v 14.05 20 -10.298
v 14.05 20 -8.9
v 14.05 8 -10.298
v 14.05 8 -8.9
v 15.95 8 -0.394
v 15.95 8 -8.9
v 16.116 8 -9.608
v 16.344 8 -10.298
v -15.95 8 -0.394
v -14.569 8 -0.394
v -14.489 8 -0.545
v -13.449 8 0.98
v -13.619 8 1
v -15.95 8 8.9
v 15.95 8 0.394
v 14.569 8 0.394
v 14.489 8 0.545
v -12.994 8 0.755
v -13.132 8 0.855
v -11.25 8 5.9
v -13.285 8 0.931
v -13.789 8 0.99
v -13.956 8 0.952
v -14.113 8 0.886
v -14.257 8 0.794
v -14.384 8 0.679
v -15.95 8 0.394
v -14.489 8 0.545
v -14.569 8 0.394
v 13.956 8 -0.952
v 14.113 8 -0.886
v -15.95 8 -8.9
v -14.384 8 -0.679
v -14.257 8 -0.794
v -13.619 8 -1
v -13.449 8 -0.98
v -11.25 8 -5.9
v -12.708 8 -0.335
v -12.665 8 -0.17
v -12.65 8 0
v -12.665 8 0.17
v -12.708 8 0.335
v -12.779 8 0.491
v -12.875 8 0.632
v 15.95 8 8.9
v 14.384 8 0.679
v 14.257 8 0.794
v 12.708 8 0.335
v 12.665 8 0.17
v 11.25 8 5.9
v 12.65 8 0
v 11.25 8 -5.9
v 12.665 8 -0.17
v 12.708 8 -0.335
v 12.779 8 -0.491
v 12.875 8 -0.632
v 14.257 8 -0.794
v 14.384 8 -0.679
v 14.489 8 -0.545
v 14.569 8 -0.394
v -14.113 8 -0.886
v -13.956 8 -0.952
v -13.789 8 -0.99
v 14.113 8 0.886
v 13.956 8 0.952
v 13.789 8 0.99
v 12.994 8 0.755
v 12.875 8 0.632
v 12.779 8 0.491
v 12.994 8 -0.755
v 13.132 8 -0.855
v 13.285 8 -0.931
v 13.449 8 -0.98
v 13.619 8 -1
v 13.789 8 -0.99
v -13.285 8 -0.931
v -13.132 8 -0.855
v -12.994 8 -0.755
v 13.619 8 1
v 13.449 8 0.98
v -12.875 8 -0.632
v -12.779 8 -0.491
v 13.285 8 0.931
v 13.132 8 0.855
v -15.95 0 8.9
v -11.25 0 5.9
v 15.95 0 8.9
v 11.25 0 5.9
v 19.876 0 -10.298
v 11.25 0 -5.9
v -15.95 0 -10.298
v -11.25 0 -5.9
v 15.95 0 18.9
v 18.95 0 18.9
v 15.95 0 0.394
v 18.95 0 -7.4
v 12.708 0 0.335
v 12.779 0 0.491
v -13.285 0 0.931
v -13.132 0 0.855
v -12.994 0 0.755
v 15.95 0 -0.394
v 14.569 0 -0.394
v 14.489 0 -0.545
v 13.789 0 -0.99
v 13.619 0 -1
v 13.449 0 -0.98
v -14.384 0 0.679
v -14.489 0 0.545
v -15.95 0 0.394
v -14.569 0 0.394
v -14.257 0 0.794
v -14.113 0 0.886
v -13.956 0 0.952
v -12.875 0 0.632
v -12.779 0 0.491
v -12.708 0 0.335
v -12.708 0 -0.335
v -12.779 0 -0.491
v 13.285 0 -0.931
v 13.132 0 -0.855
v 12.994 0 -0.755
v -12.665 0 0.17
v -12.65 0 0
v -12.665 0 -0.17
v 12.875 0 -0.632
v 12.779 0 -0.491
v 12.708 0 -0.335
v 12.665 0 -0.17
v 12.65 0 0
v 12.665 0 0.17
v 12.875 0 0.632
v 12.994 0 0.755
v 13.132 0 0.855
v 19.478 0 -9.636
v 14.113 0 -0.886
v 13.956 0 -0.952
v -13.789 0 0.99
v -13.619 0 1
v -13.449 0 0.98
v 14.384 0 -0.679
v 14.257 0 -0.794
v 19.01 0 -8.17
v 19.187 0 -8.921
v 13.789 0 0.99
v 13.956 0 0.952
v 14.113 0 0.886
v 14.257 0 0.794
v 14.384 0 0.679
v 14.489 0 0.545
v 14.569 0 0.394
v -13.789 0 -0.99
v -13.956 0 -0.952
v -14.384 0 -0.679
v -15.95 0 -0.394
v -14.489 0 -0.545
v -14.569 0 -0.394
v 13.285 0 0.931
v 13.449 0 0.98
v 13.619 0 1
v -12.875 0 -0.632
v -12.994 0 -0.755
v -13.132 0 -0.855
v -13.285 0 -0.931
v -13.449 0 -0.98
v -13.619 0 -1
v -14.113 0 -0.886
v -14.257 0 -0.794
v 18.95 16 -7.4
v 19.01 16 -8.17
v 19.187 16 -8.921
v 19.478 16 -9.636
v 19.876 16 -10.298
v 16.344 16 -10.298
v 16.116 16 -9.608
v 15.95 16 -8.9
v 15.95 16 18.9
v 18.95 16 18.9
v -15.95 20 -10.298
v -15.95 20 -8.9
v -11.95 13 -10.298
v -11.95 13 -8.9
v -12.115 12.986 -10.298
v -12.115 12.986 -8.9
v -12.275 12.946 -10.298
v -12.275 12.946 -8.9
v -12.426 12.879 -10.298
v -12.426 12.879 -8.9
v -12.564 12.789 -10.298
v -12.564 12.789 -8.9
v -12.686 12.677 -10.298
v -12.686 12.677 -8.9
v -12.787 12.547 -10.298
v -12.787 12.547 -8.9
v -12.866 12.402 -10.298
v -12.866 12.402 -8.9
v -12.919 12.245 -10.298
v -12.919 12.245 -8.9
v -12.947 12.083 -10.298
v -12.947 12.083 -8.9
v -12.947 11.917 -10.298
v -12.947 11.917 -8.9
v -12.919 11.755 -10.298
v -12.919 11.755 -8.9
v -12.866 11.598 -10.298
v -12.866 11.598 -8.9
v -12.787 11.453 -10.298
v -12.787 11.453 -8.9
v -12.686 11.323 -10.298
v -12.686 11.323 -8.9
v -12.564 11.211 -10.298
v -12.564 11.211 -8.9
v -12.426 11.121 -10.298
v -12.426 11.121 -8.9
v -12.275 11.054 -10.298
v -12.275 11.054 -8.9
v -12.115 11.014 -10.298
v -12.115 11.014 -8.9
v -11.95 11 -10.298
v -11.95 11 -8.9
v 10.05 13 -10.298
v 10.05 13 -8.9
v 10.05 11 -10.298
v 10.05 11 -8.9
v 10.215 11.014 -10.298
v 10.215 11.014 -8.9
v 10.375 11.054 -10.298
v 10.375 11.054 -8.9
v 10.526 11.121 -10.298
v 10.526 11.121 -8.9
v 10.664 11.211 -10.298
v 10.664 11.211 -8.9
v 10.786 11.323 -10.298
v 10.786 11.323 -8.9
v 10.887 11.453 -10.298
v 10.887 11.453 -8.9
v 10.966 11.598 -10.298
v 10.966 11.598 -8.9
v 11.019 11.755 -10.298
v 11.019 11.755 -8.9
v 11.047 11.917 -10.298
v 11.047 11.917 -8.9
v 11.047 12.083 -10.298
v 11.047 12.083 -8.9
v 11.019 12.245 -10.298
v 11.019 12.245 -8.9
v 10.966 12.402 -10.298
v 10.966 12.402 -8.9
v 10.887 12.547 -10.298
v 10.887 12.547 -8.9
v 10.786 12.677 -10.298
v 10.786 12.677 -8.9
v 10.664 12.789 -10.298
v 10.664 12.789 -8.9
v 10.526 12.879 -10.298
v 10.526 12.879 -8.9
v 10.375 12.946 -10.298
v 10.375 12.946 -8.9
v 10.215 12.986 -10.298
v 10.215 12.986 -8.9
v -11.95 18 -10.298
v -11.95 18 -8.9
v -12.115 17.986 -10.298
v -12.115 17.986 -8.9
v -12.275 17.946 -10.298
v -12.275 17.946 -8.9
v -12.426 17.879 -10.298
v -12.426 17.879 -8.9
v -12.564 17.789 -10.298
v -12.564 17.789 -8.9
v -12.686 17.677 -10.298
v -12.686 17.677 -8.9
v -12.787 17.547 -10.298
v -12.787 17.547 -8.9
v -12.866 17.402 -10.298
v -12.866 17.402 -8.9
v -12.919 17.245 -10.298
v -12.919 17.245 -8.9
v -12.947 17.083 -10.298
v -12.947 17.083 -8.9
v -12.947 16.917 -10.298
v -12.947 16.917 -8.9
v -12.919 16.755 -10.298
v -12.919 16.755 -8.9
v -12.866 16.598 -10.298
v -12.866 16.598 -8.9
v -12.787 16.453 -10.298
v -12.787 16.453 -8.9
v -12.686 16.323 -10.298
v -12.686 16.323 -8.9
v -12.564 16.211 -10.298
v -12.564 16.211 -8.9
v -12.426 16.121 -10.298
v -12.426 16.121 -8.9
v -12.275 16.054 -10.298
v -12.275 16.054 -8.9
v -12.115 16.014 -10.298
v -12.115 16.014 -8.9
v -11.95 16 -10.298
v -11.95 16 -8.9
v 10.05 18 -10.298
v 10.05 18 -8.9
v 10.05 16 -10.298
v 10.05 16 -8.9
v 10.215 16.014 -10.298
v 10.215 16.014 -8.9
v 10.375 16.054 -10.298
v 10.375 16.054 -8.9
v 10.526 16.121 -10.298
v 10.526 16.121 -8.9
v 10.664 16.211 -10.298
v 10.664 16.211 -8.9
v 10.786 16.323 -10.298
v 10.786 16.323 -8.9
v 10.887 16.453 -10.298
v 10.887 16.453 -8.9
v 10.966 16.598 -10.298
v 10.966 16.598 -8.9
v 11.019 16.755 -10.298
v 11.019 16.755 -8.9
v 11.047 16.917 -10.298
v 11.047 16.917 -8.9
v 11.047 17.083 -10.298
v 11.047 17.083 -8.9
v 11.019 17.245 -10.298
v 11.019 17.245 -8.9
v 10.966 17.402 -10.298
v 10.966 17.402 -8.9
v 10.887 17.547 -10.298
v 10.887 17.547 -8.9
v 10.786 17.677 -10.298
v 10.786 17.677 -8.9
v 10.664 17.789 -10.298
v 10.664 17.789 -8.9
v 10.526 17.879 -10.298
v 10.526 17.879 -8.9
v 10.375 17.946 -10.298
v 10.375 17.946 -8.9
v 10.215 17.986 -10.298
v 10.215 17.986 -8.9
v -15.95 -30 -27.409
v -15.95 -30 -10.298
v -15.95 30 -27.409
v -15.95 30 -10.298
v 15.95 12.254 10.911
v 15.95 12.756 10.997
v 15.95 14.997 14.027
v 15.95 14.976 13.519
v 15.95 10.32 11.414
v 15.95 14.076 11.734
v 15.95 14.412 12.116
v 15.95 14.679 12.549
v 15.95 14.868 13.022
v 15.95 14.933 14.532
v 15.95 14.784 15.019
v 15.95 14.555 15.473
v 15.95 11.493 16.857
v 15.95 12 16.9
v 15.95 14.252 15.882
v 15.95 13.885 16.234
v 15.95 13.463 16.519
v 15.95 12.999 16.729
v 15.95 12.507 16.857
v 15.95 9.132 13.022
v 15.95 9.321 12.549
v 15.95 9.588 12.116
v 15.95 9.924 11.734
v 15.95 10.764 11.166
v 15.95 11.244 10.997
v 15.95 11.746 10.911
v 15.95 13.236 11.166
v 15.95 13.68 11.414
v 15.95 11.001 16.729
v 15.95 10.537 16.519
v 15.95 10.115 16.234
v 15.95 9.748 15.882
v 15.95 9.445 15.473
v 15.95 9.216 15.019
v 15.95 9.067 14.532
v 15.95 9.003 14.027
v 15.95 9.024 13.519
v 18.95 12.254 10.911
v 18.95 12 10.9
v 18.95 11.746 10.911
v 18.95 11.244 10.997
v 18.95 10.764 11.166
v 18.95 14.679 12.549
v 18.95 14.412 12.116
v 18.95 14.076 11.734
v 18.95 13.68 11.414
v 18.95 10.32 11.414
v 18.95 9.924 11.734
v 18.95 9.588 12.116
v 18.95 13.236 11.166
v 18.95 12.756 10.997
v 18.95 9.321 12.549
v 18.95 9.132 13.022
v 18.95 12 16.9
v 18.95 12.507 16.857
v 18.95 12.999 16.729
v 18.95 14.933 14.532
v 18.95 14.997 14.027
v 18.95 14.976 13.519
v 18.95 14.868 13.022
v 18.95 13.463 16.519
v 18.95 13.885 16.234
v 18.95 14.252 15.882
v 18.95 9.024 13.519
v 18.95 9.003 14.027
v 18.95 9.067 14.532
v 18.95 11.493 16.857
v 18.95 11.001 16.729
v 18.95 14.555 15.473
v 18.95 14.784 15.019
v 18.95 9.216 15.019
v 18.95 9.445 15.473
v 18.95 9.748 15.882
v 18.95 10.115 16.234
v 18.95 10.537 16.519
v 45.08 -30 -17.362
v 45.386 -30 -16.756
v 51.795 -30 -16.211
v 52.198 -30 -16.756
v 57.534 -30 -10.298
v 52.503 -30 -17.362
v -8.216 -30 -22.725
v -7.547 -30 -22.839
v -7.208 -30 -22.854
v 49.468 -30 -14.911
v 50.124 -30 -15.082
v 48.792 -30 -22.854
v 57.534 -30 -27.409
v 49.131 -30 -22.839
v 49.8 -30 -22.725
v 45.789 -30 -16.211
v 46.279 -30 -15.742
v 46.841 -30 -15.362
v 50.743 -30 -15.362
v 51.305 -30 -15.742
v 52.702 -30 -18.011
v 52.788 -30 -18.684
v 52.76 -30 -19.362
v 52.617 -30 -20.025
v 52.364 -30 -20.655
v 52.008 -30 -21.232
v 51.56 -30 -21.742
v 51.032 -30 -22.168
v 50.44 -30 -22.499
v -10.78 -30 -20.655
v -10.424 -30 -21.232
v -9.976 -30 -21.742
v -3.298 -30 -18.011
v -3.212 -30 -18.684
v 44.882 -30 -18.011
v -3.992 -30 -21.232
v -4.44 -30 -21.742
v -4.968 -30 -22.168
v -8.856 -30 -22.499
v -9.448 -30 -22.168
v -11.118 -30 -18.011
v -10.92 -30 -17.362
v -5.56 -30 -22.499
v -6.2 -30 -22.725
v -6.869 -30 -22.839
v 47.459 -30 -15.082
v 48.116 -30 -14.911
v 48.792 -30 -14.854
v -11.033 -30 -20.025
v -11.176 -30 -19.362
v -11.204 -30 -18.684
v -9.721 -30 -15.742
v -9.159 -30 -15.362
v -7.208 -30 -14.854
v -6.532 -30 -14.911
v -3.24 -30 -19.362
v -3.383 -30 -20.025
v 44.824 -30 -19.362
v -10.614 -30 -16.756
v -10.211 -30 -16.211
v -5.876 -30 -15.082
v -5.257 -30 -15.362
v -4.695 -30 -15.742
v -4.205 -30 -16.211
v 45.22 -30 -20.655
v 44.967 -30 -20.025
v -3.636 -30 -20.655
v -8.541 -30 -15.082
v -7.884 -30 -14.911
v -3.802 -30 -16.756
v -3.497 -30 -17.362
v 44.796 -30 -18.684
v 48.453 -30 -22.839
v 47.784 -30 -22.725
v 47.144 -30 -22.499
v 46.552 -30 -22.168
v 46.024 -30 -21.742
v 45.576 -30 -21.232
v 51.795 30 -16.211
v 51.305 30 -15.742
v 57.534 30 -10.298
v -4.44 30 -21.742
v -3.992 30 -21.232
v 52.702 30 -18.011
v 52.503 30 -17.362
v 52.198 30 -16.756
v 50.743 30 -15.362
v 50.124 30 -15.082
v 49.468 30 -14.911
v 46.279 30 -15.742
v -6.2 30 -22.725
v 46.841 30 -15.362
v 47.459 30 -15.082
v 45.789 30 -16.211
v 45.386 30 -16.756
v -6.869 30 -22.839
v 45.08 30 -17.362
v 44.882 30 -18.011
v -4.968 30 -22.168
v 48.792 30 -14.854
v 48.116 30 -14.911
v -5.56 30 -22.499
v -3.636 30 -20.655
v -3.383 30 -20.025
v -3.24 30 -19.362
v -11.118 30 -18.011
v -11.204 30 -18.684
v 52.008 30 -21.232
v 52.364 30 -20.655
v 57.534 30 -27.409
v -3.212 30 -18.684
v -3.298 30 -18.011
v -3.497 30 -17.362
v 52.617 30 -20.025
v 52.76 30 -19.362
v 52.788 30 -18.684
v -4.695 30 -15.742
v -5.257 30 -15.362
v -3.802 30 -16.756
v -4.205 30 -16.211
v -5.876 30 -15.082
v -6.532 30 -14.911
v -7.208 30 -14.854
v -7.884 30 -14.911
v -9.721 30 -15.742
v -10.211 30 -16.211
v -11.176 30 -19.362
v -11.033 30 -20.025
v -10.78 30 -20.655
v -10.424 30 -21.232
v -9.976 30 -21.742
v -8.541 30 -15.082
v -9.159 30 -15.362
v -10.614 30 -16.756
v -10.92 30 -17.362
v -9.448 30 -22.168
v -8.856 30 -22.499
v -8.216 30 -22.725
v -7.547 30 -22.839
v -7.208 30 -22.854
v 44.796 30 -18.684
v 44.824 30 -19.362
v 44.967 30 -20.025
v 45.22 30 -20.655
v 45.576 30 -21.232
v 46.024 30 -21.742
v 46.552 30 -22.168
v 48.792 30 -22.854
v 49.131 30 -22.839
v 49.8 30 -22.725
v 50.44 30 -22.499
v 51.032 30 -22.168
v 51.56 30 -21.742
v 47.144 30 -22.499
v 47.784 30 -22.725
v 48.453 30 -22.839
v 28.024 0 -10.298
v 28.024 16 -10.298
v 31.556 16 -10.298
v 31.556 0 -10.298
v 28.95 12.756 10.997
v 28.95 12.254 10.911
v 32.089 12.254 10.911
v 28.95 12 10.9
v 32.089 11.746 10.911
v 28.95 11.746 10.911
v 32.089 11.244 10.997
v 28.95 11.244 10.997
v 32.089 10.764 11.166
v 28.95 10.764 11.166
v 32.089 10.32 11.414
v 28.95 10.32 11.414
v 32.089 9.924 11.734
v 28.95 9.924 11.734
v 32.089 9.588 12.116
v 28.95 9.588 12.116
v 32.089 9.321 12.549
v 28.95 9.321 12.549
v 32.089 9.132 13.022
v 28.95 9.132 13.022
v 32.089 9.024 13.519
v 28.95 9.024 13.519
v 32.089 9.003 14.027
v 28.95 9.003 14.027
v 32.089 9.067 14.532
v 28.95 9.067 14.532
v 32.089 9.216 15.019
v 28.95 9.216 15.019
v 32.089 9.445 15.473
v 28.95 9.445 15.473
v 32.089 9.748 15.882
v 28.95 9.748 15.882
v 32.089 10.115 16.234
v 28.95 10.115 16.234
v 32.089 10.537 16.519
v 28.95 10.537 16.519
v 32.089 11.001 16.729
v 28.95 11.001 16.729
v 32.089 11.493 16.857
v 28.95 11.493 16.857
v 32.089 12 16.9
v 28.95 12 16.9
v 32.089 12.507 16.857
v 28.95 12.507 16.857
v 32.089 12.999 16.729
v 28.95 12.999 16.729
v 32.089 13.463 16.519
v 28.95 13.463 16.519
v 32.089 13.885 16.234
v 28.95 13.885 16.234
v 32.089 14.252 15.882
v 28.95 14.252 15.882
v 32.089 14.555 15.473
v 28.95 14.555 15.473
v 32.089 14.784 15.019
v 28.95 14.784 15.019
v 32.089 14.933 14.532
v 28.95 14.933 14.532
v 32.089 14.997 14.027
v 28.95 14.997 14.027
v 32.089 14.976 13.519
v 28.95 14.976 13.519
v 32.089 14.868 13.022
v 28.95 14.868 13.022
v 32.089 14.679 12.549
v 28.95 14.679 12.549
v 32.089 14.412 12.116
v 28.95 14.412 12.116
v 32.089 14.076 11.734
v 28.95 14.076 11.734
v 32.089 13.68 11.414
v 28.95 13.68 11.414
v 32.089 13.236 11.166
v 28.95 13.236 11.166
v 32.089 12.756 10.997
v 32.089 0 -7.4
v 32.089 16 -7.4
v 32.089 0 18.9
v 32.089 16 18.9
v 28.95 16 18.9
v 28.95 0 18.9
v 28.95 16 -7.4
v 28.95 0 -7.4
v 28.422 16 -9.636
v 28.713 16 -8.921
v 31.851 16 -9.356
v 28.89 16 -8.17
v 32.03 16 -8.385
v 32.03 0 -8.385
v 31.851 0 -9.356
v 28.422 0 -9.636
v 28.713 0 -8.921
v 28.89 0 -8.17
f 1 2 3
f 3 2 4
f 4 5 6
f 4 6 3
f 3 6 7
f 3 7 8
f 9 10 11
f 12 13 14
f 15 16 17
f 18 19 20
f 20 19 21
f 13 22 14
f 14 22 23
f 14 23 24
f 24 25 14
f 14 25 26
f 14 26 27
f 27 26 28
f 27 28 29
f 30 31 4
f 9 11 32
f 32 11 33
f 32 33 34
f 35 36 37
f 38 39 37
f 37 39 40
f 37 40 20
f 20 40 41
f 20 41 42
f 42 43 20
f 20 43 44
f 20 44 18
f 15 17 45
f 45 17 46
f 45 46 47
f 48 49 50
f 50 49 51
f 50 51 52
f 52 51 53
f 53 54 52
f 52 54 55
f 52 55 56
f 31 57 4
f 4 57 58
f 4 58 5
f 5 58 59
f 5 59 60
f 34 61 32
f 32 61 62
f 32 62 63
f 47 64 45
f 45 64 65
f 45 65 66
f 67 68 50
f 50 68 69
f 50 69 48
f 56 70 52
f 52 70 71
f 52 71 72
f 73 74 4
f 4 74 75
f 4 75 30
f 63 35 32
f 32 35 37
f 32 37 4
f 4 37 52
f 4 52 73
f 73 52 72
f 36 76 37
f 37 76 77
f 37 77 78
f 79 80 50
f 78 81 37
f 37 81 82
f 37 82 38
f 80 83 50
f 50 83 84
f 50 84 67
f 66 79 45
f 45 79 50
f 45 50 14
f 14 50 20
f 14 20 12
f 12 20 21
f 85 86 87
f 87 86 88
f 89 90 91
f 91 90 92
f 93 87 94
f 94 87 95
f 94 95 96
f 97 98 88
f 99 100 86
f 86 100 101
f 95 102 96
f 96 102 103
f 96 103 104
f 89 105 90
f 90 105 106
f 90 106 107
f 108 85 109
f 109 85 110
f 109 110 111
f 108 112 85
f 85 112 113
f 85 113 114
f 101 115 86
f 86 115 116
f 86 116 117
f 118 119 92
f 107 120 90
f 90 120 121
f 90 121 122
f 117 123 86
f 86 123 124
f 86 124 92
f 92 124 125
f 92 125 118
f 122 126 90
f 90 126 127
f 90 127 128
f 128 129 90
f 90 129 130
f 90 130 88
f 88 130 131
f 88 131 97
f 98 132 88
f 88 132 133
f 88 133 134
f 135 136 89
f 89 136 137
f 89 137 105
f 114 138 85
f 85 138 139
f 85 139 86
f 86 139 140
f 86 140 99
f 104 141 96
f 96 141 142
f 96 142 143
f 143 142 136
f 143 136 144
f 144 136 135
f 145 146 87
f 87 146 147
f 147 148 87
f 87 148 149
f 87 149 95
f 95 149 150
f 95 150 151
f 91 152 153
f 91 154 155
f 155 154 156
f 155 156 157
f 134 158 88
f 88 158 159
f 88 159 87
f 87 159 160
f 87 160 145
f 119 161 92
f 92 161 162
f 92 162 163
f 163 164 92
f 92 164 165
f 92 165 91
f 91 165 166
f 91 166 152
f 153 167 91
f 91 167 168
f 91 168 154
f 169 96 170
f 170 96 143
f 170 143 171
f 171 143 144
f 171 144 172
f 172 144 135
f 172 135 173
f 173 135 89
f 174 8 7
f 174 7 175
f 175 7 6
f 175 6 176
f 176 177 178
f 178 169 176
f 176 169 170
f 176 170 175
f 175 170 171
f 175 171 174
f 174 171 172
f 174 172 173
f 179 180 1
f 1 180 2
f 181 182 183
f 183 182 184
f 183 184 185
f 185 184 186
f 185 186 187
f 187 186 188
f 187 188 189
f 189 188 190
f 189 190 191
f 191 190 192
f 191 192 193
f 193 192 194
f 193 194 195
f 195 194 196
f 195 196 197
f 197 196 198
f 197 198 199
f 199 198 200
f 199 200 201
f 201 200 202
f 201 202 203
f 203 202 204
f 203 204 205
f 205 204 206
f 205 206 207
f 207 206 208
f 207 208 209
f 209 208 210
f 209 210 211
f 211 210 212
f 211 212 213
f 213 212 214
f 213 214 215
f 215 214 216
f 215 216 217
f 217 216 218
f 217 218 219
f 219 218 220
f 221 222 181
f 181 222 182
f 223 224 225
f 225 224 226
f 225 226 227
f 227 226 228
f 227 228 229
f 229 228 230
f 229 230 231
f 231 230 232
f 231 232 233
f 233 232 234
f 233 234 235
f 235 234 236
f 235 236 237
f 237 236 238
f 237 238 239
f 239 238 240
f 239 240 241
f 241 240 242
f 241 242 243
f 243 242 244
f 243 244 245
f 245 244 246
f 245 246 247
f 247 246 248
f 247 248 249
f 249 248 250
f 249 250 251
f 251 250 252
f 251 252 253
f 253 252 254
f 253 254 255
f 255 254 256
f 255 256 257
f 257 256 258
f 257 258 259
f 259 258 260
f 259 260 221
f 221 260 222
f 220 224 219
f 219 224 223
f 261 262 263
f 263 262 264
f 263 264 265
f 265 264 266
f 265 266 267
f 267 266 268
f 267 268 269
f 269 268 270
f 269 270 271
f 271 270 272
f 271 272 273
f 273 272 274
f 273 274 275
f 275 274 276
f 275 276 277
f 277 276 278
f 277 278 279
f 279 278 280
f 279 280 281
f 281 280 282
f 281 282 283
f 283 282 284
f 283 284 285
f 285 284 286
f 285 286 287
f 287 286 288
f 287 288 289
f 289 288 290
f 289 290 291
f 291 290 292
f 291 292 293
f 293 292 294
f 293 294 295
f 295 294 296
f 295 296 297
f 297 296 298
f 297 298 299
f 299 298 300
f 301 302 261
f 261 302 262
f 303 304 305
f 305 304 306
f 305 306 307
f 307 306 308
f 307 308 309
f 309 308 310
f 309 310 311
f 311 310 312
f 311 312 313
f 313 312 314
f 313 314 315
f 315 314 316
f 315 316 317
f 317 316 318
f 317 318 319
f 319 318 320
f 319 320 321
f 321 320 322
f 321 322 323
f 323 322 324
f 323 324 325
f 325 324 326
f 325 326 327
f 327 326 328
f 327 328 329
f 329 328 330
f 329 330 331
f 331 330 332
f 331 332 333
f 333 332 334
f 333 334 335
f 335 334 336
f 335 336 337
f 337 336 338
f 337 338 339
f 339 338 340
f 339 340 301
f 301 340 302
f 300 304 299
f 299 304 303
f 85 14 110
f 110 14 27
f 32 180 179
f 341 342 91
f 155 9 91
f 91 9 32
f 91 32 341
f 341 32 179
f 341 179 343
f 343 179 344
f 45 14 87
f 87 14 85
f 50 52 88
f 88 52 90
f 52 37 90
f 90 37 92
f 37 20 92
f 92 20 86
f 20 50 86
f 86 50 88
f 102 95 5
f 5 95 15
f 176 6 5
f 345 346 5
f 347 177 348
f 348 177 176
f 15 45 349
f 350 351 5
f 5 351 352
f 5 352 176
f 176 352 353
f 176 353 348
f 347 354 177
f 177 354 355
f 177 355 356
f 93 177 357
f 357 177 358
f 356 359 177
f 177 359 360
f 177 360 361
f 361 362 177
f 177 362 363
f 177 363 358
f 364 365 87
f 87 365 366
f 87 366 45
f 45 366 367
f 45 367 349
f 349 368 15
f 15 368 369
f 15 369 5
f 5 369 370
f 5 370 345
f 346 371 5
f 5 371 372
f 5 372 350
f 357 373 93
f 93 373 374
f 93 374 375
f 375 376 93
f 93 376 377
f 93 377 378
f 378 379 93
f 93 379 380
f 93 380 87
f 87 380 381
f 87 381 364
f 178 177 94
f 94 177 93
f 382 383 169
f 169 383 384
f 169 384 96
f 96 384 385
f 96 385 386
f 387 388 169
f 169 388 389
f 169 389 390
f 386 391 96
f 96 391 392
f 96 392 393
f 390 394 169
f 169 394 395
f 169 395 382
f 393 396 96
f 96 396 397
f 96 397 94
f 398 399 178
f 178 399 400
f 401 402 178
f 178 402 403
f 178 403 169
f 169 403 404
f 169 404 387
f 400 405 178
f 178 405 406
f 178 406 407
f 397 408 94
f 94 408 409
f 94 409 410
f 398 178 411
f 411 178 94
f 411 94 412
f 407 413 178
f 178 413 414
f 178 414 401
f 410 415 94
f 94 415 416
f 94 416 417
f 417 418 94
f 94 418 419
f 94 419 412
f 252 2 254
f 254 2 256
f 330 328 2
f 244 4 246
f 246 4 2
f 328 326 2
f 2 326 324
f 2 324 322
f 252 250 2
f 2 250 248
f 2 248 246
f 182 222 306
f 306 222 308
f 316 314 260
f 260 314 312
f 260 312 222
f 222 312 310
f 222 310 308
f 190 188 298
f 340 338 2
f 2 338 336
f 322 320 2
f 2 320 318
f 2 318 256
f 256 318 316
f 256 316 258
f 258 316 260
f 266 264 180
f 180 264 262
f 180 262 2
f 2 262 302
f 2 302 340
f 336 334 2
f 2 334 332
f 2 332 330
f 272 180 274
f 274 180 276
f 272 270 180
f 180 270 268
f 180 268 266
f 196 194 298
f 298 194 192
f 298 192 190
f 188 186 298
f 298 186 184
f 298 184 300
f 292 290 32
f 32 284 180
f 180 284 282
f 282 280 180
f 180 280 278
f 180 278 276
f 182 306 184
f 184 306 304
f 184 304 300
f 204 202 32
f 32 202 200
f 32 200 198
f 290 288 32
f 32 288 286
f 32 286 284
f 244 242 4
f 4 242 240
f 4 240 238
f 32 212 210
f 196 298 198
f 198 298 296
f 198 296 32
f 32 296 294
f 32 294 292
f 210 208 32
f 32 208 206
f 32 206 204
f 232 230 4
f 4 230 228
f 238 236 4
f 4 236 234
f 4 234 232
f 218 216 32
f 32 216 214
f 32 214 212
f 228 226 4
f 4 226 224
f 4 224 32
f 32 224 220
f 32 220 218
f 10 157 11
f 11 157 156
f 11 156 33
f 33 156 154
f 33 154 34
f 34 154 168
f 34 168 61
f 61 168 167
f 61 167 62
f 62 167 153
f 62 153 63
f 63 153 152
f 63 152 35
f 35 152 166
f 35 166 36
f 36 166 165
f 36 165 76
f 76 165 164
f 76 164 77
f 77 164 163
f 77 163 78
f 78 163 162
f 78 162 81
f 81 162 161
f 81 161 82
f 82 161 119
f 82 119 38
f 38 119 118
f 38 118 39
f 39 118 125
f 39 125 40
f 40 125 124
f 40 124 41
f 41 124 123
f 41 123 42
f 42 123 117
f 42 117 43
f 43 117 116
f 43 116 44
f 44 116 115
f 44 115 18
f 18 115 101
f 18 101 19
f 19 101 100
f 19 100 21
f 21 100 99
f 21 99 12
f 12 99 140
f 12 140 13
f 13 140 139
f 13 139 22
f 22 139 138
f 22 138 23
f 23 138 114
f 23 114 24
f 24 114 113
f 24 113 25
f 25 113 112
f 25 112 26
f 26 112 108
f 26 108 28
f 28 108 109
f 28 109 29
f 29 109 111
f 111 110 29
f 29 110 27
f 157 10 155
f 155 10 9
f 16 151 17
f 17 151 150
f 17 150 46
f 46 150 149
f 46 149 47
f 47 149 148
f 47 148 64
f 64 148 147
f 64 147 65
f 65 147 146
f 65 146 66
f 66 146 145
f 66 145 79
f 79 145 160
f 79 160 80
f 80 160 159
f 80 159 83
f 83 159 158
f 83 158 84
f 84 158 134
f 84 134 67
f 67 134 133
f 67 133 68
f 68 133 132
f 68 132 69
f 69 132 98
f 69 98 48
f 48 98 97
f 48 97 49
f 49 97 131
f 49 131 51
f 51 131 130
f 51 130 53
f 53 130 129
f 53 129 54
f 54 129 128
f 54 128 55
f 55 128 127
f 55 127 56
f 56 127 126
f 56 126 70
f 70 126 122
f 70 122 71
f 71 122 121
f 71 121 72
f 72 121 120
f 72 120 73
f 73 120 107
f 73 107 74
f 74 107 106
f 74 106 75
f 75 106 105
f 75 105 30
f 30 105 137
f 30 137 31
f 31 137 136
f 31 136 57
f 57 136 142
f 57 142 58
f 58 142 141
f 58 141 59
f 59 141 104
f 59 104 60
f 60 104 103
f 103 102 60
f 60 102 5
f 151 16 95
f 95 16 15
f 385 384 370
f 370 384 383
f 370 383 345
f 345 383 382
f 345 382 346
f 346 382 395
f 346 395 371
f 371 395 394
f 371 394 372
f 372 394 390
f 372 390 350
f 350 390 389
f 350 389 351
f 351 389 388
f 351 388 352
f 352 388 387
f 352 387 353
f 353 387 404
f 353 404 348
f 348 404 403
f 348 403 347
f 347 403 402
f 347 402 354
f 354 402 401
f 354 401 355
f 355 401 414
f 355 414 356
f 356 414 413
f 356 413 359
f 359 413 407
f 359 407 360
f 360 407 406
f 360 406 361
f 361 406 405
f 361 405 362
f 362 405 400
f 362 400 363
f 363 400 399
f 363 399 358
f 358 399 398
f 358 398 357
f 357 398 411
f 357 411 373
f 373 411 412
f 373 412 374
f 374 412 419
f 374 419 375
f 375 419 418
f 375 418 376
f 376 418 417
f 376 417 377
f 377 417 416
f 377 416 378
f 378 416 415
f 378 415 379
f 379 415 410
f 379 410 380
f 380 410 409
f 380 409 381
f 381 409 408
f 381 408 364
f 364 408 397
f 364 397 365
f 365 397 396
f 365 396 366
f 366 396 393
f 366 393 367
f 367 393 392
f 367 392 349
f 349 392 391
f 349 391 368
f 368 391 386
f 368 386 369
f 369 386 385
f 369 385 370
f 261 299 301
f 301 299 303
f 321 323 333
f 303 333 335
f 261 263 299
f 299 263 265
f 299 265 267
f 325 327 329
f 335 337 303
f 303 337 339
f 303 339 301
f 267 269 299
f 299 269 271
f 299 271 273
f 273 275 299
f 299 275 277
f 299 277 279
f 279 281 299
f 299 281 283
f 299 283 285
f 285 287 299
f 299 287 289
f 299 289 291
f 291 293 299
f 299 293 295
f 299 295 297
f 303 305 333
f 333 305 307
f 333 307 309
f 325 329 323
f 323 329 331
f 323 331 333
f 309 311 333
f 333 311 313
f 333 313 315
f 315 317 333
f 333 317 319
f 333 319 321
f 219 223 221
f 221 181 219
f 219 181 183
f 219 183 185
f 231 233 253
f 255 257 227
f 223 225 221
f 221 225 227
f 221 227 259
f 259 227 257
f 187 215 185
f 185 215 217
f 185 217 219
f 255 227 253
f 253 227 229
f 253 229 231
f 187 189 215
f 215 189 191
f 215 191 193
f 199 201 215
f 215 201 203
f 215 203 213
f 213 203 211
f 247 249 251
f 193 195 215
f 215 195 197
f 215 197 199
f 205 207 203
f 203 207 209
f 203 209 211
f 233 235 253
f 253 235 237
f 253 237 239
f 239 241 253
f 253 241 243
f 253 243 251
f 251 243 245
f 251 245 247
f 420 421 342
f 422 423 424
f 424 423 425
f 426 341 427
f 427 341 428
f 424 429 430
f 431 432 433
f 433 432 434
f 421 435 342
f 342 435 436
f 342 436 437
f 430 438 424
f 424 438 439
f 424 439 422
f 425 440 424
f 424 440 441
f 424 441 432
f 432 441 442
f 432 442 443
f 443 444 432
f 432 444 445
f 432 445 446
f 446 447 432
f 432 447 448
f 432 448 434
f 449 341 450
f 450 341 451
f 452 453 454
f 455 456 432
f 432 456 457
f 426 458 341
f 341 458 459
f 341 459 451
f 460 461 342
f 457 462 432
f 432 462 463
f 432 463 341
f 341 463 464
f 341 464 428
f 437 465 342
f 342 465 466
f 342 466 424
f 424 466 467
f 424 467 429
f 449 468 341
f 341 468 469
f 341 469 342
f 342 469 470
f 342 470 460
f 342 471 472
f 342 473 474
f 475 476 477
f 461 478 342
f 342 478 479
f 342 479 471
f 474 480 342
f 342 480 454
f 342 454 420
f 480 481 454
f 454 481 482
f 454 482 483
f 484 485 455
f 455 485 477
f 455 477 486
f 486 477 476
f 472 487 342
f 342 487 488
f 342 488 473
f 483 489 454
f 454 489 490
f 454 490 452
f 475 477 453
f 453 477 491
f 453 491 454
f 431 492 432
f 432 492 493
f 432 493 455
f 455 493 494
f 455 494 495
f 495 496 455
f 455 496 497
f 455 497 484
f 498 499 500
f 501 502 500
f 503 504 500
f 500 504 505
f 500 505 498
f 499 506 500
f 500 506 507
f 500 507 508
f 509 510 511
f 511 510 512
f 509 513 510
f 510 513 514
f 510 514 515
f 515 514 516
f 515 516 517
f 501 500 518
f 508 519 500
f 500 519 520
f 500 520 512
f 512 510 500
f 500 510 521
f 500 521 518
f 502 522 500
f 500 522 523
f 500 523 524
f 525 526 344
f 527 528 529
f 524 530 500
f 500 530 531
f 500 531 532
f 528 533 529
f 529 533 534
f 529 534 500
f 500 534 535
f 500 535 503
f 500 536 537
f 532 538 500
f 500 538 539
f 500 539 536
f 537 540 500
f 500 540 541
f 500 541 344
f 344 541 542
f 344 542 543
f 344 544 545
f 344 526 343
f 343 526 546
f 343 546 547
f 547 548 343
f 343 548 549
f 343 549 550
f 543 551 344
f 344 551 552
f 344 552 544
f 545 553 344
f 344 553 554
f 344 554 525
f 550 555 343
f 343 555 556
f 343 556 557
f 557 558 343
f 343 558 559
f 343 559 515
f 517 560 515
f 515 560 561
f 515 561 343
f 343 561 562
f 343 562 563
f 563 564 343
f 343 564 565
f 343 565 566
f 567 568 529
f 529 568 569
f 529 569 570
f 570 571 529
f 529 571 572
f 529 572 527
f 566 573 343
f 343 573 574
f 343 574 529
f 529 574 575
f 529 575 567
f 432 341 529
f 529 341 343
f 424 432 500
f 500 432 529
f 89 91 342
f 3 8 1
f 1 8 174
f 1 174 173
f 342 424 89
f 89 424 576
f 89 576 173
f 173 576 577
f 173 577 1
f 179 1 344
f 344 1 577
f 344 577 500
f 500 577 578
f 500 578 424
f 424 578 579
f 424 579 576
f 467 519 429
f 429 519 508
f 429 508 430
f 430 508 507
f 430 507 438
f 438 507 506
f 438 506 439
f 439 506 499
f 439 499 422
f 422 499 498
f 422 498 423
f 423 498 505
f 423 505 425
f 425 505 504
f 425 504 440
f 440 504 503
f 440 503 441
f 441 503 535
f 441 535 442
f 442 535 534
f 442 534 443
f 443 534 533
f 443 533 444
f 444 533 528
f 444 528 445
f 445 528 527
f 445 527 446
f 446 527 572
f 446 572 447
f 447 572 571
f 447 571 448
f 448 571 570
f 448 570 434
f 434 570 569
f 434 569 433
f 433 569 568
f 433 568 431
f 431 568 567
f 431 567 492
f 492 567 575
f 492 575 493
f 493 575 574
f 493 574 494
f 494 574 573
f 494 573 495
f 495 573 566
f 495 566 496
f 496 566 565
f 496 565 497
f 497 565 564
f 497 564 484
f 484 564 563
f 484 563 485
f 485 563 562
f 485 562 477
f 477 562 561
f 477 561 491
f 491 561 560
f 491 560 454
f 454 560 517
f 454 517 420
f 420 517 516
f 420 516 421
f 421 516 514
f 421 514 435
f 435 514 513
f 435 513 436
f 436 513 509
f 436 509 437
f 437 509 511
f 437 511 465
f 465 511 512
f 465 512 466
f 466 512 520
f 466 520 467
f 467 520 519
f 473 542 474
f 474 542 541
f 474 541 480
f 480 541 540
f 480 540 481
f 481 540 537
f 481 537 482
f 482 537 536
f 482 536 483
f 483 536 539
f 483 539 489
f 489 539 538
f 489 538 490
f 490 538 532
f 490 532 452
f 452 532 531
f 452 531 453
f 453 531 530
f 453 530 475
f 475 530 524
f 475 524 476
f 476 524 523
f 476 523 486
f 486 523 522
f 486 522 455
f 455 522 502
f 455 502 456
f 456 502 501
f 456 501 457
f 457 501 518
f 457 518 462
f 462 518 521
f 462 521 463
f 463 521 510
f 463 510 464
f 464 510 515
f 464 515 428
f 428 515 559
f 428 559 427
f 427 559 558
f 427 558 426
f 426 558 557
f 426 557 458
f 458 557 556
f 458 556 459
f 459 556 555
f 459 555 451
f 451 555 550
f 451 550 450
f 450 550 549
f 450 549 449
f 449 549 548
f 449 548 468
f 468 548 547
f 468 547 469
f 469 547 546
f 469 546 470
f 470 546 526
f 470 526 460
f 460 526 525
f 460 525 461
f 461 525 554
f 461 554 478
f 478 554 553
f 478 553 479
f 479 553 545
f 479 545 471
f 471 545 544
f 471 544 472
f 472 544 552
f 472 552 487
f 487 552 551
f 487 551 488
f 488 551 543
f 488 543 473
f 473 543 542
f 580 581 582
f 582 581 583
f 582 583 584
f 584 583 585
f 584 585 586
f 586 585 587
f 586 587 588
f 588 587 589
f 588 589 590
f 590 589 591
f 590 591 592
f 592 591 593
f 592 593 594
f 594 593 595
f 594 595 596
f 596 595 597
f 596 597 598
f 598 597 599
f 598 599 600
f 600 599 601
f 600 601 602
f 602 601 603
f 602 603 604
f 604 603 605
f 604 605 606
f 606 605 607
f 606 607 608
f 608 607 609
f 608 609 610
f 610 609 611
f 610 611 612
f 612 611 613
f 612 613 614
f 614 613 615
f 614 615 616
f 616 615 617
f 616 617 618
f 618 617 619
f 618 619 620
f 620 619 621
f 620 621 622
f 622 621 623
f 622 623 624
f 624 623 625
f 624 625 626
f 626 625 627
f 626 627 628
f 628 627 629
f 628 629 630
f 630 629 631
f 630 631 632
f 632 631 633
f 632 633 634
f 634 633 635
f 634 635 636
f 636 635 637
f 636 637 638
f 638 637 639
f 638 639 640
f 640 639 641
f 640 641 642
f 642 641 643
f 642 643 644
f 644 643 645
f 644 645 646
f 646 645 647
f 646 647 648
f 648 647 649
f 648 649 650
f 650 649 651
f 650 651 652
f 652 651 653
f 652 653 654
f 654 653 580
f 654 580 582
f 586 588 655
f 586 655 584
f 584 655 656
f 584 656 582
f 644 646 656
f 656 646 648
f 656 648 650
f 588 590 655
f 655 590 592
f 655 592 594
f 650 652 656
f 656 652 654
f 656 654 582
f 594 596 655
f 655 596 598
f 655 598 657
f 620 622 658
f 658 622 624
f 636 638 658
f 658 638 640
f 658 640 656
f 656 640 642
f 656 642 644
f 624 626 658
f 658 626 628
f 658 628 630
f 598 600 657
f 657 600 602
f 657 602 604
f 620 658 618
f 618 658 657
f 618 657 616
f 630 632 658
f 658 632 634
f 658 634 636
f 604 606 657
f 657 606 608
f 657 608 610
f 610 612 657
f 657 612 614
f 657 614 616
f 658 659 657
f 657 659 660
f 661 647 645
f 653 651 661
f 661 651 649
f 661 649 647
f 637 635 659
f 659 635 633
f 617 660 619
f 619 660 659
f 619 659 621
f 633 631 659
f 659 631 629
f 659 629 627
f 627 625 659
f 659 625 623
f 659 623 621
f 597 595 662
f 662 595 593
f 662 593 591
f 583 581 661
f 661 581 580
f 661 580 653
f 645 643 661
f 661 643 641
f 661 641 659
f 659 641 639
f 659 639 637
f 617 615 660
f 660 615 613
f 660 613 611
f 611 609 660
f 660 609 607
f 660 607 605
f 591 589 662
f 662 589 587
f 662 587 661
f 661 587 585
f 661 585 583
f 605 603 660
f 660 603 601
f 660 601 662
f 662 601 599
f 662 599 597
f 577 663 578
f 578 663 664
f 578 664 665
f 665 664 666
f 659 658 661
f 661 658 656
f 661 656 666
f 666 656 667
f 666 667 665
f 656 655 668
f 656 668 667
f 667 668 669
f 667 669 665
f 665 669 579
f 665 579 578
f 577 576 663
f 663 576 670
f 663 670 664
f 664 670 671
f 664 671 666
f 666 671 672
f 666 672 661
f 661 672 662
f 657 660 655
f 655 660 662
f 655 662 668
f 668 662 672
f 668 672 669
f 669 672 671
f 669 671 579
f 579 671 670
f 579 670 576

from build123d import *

# Parameters (mm, degrees)
SKETCH1_W                   = 31.9
SKETCH1_H                   = 17.8
SKETCH1_W_2                 = 22.5
SKETCH1_H_2                 = 11.8
BOSS_EXTRUDE1_DEPTH         = 8
BOSS_EXTRUDE2_DEPTH         = 16
SKETCH5_W                   = 14.05
SKETCH5_H                   = 12
SKETCH5_W_2                 = 15.95
SKETCH5_H_2                 = 8
BOSS_EXTRUDE3_DEPTH         = 3
CUT_EXTRUDE2_DEPTH          = 3
CUT_EXTRUDE3_DEPTH          = 43.272216091
BOSS_EXTRUDE4_START         = -8
BOSS_EXTRUDE4_DEPTH         = 8
CUT_EXTRUDE4_DEPTH          = 43.128612605
IZIM1_W                     = 73.483837375
IZIM1_H                     = 17.110844689
IZIM1_R                     = 4
Y_KSEKLIK_EKSTR_ZYON1_DEPTH = 30


with BuildPart() as part:
    # Sketch1 → Boss-Extrude1 (new body)
    with BuildSketch(Plane(origin=(0, 0, 0), x_dir=(1, 0, 0), z_dir=(0, 1, 0))):
        Rectangle(SKETCH1_W, SKETCH1_H)
        Rectangle(SKETCH1_W_2, SKETCH1_H_2, mode=Mode.SUBTRACT)
    extrude(amount=BOSS_EXTRUDE1_DEPTH)

    # Sketch3 → Boss-Extrude2 (add)
    with BuildSketch(Plane.XZ):
        with BuildLine():
            ThreePointArc((28.95, -7.4), (23.95, -12.4), (18.95, -7.4))
            Line((18.95, -7.4), (18.95, 18.9))
            Line((18.95, 18.9), (15.95, 18.9))
            Line((15.95, 18.9), (15.95, -8.9))
            ThreePointArc((15.95, -8.9), (24.70323224, -15.504482784), (32.089410298, -7.4))
            Line((32.089410298, -7.4), (32.089410298, 18.9))
            Line((32.089410298, 18.9), (28.95, 18.9))
            Line((28.95, 18.9), (28.95, -7.4))
        make_face()
    extrude(amount=-BOSS_EXTRUDE2_DEPTH)

    # Sketch5 → Boss-Extrude3 (add)
    with BuildSketch(Plane(origin=(0, 0, -8.9), x_dir=(-1, 0, 0), z_dir=(0, 0, -1))):
        with Locations((-7.025, 14)):
            Rectangle(SKETCH5_W, SKETCH5_H)
        with Locations((7.975, 14)):
            Rectangle(SKETCH5_W_2, SKETCH5_H)
        with Locations((7.975, 4)):
            Rectangle(SKETCH5_W_2, SKETCH5_H_2)
        with Locations((-7.025, 4)):
            Rectangle(SKETCH5_W, SKETCH5_H_2)
    extrude(amount=BOSS_EXTRUDE3_DEPTH)

    # Sketch6 → Cut-Extrude2 (cut)
    with BuildSketch(Plane.XY.offset(-8.9)):
        with BuildLine():
            Line((-11.95, 18), (10.05, 18))
            ThreePointArc((10.05, 18), (11.05, 17), (10.05, 16))
            Line((10.05, 16), (-11.95, 16))
            ThreePointArc((-11.95, 16), (-12.95, 17), (-11.95, 18))
        make_face()
        with BuildLine():
            Line((-11.95, 13), (10.05, 13))
            ThreePointArc((10.05, 13), (11.05, 12), (10.05, 11))
            Line((10.05, 11), (-11.95, 11))
            ThreePointArc((-11.95, 11), (-12.95, 12), (-11.95, 13))
        make_face()
    extrude(amount=-CUT_EXTRUDE2_DEPTH, mode=Mode.SUBTRACT)

    # Sketch7 → Cut-Extrude3 (cut, through all)
    with BuildSketch(Plane.XZ):
        with BuildLine():
            Line((-15.95, -0.393894215), (-15.95, 0.393894215))
            Line((-15.95, 0.393894215), (-14.56915578, 0.393894215))
            ThreePointArc((-14.56915578, 0.393894215), (-12.65, 0), (-14.56915578, -0.393894215))
            Line((-14.56915578, -0.393894215), (-15.95, -0.393894215))
        make_face()
    cut_extrude3 = extrude(amount=-CUT_EXTRUDE3_DEPTH, mode=Mode.SUBTRACT)

    # Mirror1: Cut-Extrude3 across plane
    add(cut_extrude3.mirror(Plane(origin=(0, 0, 0), x_dir=(0, 0, 1), z_dir=(1, 0, 0))), mode=Mode.SUBTRACT)

    # Sketch8 → Boss-Extrude4 (add)
    with BuildSketch(Plane.XZ.offset(BOSS_EXTRUDE4_START)):
        with BuildLine():
            Line((14.05, -11.9), (14.05, -8.9))
            Line((14.05, -8.9), (15.95, -8.9))
            ThreePointArc((15.95, -8.9), (16.408162032, -10.461156655), (17.167670017, -11.9))
            Line((17.167670017, -11.9), (14.05, -11.9))
        make_face()
    extrude(amount=BOSS_EXTRUDE4_DEPTH)

    # Sketch9 → Cut-Extrude4 (cut, through all)
    with BuildSketch(Plane.ZY.offset(-15.95)):
        with BuildLine():
            ThreePointArc((13.9, 15), (10.9, 12), (13.9, 9))
            Line((13.9, 9), (13.9, 15))
        make_face()
        with BuildLine():
            Line((13.9, 15), (13.9, 9))
            ThreePointArc((13.9, 9), (16.021320344, 9.878679656), (16.9, 12))
            ThreePointArc((16.9, 12), (16.021320344, 14.121320344), (13.9, 15))
        make_face()
    extrude(amount=-CUT_EXTRUDE4_DEPTH, mode=Mode.SUBTRACT)

    # Çizim1 → Yükseklik-Ekstrüzyon1 (add, symmetric)
    with BuildSketch(Plane.XZ):
        with Locations((20.791918688, -18.853722133)):
            Rectangle(IZIM1_W, IZIM1_H)
        with Locations(Location((48.791918688, -18.853722132, 0), (0, 0, 90))):
            Circle(IZIM1_R, mode=Mode.SUBTRACT)
        with Locations(Location((-7.208081312, -18.853722132, 0), (0, 0, 90))):
            Circle(IZIM1_R, mode=Mode.SUBTRACT)
    extrude(amount=Y_KSEKLIK_EKSTR_ZYON1_DEPTH, both=True)


solid = part.part
